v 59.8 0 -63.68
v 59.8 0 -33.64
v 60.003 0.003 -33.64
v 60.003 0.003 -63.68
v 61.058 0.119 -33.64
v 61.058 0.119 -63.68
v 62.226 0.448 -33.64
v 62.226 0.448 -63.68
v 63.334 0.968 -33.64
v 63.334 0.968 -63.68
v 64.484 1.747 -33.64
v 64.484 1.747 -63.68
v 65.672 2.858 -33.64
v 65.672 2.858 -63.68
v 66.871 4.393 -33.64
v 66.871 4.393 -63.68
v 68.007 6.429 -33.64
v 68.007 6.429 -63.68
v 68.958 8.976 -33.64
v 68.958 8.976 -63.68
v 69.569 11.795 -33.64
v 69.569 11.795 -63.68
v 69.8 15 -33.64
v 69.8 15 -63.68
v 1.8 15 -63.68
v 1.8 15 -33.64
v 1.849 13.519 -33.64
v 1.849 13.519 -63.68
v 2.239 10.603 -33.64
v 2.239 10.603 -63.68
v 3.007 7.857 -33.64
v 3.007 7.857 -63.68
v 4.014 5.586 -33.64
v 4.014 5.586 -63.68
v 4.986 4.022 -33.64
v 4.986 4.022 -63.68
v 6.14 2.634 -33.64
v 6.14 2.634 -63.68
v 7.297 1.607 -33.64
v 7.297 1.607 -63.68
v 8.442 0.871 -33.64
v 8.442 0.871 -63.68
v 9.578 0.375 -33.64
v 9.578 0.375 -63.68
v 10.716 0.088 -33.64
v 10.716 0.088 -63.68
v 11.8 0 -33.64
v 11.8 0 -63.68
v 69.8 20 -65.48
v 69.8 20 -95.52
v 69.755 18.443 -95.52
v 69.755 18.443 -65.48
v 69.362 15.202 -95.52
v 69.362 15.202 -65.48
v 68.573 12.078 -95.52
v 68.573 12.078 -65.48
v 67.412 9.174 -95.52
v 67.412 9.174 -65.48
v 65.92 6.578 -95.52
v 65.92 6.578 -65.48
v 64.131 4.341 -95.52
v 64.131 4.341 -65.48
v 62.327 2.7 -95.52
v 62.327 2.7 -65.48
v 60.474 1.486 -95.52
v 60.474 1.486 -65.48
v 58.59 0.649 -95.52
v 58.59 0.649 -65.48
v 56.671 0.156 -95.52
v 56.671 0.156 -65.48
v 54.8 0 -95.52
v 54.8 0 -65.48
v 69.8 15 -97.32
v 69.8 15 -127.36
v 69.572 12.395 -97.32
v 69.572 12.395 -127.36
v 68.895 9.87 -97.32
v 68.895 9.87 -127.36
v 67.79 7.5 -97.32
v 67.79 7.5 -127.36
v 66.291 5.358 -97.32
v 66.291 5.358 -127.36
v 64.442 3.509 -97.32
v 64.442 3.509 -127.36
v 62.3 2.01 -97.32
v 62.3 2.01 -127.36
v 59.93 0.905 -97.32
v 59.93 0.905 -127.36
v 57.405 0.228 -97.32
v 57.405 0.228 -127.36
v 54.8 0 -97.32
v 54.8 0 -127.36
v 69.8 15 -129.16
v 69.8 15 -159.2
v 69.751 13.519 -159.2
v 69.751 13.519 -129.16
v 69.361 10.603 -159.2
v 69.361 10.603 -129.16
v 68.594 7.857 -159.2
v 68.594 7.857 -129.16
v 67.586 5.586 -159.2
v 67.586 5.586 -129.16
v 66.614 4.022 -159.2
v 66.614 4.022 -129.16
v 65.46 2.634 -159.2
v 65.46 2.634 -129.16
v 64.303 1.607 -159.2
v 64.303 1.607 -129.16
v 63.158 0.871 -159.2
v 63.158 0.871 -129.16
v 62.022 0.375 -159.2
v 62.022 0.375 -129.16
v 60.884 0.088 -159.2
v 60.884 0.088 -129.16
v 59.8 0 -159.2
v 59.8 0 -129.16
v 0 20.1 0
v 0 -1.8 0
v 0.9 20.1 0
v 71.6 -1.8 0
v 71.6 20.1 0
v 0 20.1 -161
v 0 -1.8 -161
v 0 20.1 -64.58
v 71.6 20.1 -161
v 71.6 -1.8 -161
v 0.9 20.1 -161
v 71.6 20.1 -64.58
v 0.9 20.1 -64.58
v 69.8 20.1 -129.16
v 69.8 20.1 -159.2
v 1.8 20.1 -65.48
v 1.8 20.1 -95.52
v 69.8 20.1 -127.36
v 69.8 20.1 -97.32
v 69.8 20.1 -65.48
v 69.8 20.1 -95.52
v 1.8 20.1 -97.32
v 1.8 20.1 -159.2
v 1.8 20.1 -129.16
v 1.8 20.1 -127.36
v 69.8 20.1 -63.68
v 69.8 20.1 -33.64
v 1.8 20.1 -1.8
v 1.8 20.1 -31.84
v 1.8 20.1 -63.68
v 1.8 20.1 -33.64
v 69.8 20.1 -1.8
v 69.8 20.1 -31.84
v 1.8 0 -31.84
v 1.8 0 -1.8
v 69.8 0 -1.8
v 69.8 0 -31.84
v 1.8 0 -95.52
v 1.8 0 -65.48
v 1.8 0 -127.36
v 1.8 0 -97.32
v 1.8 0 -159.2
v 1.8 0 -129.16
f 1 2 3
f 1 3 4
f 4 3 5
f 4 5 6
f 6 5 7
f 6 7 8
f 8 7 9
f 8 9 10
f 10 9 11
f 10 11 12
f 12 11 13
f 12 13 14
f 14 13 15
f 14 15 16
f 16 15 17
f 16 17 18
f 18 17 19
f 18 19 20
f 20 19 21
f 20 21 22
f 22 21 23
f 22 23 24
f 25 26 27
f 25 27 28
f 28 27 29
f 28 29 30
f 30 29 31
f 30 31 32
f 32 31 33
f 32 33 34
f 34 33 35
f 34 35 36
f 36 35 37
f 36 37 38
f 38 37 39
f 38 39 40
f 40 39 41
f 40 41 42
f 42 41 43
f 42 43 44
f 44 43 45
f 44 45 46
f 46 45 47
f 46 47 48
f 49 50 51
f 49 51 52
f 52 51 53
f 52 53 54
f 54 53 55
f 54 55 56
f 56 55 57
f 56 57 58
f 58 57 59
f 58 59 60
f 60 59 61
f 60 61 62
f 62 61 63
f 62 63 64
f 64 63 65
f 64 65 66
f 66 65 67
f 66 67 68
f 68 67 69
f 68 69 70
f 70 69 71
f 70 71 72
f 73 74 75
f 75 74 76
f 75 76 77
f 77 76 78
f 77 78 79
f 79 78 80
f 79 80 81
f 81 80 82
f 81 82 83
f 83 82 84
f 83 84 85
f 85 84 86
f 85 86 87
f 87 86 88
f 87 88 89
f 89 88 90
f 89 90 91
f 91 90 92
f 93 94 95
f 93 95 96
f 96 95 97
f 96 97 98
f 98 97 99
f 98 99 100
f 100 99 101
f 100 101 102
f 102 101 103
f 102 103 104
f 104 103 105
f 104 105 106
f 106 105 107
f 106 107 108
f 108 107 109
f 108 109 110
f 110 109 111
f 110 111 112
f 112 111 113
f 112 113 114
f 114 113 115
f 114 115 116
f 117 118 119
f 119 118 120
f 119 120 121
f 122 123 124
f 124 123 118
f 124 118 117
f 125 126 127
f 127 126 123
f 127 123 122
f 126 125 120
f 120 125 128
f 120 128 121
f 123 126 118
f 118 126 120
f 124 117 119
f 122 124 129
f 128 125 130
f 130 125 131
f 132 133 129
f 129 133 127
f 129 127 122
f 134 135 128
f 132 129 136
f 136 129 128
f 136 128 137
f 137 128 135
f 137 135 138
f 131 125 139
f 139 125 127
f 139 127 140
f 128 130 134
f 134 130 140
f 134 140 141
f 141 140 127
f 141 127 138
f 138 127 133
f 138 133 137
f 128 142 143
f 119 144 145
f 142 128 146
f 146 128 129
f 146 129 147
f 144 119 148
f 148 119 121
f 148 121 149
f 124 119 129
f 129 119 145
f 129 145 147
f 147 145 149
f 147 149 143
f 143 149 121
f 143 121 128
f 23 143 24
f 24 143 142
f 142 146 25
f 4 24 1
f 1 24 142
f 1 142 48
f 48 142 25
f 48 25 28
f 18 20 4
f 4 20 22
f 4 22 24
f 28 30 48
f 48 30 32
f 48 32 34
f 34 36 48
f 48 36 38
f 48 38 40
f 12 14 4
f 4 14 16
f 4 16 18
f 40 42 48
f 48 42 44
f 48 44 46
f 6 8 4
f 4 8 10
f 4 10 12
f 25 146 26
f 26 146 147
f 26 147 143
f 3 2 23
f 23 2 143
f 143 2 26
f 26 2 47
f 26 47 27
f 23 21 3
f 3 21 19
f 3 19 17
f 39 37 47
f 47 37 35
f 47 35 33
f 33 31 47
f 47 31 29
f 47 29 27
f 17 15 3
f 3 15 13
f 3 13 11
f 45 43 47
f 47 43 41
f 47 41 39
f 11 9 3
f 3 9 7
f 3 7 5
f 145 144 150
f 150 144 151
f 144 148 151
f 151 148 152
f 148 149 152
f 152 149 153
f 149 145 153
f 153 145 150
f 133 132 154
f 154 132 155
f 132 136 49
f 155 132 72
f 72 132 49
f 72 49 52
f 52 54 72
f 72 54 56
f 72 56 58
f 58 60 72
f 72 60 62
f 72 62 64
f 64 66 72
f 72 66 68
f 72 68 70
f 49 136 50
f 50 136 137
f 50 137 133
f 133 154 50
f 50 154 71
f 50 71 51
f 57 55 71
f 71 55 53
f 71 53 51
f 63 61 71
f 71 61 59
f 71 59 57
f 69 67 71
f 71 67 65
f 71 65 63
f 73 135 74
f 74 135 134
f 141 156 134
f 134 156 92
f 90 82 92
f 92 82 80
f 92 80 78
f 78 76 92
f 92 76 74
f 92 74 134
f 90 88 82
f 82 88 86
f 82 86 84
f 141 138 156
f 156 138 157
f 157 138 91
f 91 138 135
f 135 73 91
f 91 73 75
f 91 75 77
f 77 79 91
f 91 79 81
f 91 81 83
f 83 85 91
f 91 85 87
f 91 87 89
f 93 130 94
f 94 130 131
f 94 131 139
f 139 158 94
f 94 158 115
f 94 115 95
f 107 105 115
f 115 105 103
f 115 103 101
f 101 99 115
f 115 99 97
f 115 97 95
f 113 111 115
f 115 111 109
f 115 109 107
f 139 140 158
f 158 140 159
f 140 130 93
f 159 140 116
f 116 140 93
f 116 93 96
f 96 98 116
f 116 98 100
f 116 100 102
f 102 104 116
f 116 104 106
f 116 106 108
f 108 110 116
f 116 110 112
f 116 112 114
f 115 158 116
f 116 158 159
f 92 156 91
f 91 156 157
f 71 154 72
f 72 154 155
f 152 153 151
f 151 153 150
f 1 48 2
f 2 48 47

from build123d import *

# Parameters (mm, degrees)
SKETCH1_W           = 71.6
SKETCH1_H           = 161
SKETCH1_W_2         = 68
SKETCH1_H_2         = 30.04
BOSS_EXTRUDE1_DEPTH = 1.8
SKETCH1_6_W         = 71.6
SKETCH1_6_H         = 161
SKETCH1_6_W_2       = 68
SKETCH1_6_H_2       = 30.04
BOSS_EXTRUDE2_DEPTH = 20.1
FILLET3_SIZE        = 15
FILLET3_SIZE_2      = 10
FILLET4_R           = 15
FILLET5_SIZE        = 20
FILLET5_SIZE_2      = 15
FILLET6_SIZE        = 10
FILLET6_SIZE_2      = 15
FILLET7_SIZE        = 10
FILLET7_SIZE_2      = 15


with BuildPart() as part:
    # Sketch1 → Boss-Extrude1 (new body)
    # profile 1 of 6: a face of its own
    with BuildSketch(Plane(origin=(0, 0, 0), x_dir=(1, 0, 0), z_dir=(0, 1, 0))):
        with Locations((35.8, 80.5)):
            Rectangle(SKETCH1_W, SKETCH1_H)
        with Locations((35.8, 48.66)):
            Rectangle(SKETCH1_W_2, SKETCH1_H_2, mode=Mode.SUBTRACT)
        with Locations((35.8, 16.82)):
            Rectangle(SKETCH1_W_2, SKETCH1_H_2, mode=Mode.SUBTRACT)
        with Locations((35.8, 80.5)):
            Rectangle(SKETCH1_W_2, SKETCH1_H_2, mode=Mode.SUBTRACT)
        with Locations((35.8, 112.34)):
            Rectangle(SKETCH1_W_2, SKETCH1_H_2, mode=Mode.SUBTRACT)
        with Locations((35.8, 144.18)):
            Rectangle(SKETCH1_W_2, SKETCH1_H_2, mode=Mode.SUBTRACT)
    # profile 2 of 6: a face of its own
    with BuildSketch(Plane(origin=(0, 0, 0), x_dir=(1, 0, 0), z_dir=(0, 1, 0))):
        with Locations((35.8, 144.18)):
            Rectangle(SKETCH1_W_2, SKETCH1_H_2)
    # profile 3 of 6: a face of its own
    with BuildSketch(Plane(origin=(0, 0, 0), x_dir=(1, 0, 0), z_dir=(0, 1, 0))):
        with Locations((35.8, 112.34)):
            Rectangle(SKETCH1_W_2, SKETCH1_H_2)
    # profile 4 of 6: a face of its own
    with BuildSketch(Plane(origin=(0, 0, 0), x_dir=(1, 0, 0), z_dir=(0, 1, 0))):
        with Locations((35.8, 80.5)):
            Rectangle(SKETCH1_W_2, SKETCH1_H_2)
    # profile 5 of 6: a face of its own
    with BuildSketch(Plane(origin=(0, 0, 0), x_dir=(1, 0, 0), z_dir=(0, 1, 0))):
        with Locations((35.8, 48.66)):
            Rectangle(SKETCH1_W_2, SKETCH1_H_2)
    # profile 6 of 6: a face of its own
    with BuildSketch(Plane(origin=(0, 0, 0), x_dir=(1, 0, 0), z_dir=(0, 1, 0))):
        with Locations((35.8, 16.82)):
            Rectangle(SKETCH1_W_2, SKETCH1_H_2)
    extrude(amount=-BOSS_EXTRUDE1_DEPTH)

    # Sketch1<6> → Boss-Extrude2 (add)
    with BuildSketch(Plane(origin=(0, 0, 0), x_dir=(1, 0, 0), z_dir=(0, 1, 0))):
        with Locations((35.8, 80.5)):
            Rectangle(SKETCH1_6_W, SKETCH1_6_H)
        with Locations((35.8, 16.82)):
            Rectangle(SKETCH1_6_W_2, SKETCH1_6_H_2, mode=Mode.SUBTRACT)
        with Locations((35.8, 80.5)):
            Rectangle(SKETCH1_6_W_2, SKETCH1_6_H_2, mode=Mode.SUBTRACT)
        with Locations((35.8, 48.66)):
            Rectangle(SKETCH1_6_W_2, SKETCH1_6_H_2, mode=Mode.SUBTRACT)
        with Locations((35.8, 112.34)):
            Rectangle(SKETCH1_6_W_2, SKETCH1_6_H_2, mode=Mode.SUBTRACT)
        with Locations((35.8, 144.18)):
            Rectangle(SKETCH1_6_W_2, SKETCH1_6_H_2, mode=Mode.SUBTRACT)
    extrude(amount=BOSS_EXTRUDE2_DEPTH)

    # Fillet3
    # an asymmetric fillet: 15, 10 mm, written as the material it adds along each edge
    with BuildSketch(Plane(origin=(69.8, 0, -159.2), x_dir=(0, 1, 0), z_dir=(0, 0, 1))) as fillet3_piece_1_section:
        with BuildLine():
            Bezier((FILLET3_SIZE, 0), (0, 0), (0, FILLET3_SIZE_2), weights=[1, 0.707106781, 1])
            Line((0, FILLET3_SIZE_2), (0, 0))
            Line((0, 0), (FILLET3_SIZE, 0))
        make_face()
    fillet3_piece_1 = extrude(amount=67.54, mode=Mode.PRIVATE)
    fillet3_piece_1 = split(fillet3_piece_1, bisect_by=Plane(origin=(67.566321176, 3.350519055, -127.36), z_dir=(0, 0, -1)), keep=Keep.TOP, mode=Mode.PRIVATE)
    add(fillet3_piece_1)

    # Fillet4
    fillet4_edges = [part.edges().sort_by_distance(p)[0] for p in [
        (69.8, 0, -112.34),
    ]]
    fillet(fillet4_edges, radius=FILLET4_R)

    # Fillet5
    # an asymmetric fillet: 20, 15 mm, written as the material it adds along each edge
    with BuildSketch(Plane(origin=(69.8, 0, -95.52), x_dir=(0, 1, 0), z_dir=(0, 0, 1))) as fillet5_piece_1_section:
        with BuildLine():
            Bezier((FILLET5_SIZE, 0), (0, 0), (0, FILLET5_SIZE_2), weights=[1, 0.707106781, 1])
            Line((0, FILLET5_SIZE_2), (0, 0))
            Line((0, 0), (FILLET5_SIZE, 0))
        make_face()
    fillet5_piece_1 = extrude(amount=80.04, mode=Mode.PRIVATE)
    fillet5_piece_1 = split(fillet5_piece_1, bisect_by=Plane(origin=(69.753885797, 17.321244921, -63.68), z_dir=(0, 0, -1)), keep=Keep.TOP, mode=Mode.PRIVATE)
    add(fillet5_piece_1)

    # Fillet6
    # an asymmetric fillet: 15, 10 mm, written as the material it adds along each edge
    with BuildSketch(Plane(origin=(1.8, 0, -101.18), x_dir=(1, 0, 0), z_dir=(0, 0, 1))) as fillet6_piece_1_section:
        with BuildLine():
            Bezier((FILLET6_SIZE, 0), (0, 0), (0, FILLET6_SIZE_2), weights=[1, 0.707106781, 1])
            Line((0, FILLET6_SIZE_2), (0, 0))
            Line((0, 0), (FILLET6_SIZE, 0))
        make_face()
    fillet6_piece_1 = extrude(amount=105.04, mode=Mode.PRIVATE)
    fillet6_piece_1 = split(fillet6_piece_1, bisect_by=Plane(origin=(4.033678617, 3.350518679, -31.84), z_dir=(0, 0, -1)), keep=Keep.TOP, mode=Mode.PRIVATE)
    fillet6_piece_1 = split(fillet6_piece_1, bisect_by=Plane(origin=(4.033678617, 3.350518679, -65.48), z_dir=(0, 0, 1)), keep=Keep.TOP, mode=Mode.PRIVATE)
    add(fillet6_piece_1)

    # Fillet7
    # an asymmetric fillet: 15, 10 mm, written as the material it adds along each edge
    with BuildSketch(Plane(origin=(69.8, 0, 3.86), x_dir=(-1, 0, 0), z_dir=(0, 0, -1))) as fillet7_piece_1_section:
        with BuildLine():
            Bezier((FILLET7_SIZE, 0), (0, 0), (0, FILLET7_SIZE_2), weights=[1, 0.707106781, 1])
            Line((0, FILLET7_SIZE_2), (0, 0))
            Line((0, 0), (FILLET7_SIZE, 0))
        make_face()
    fillet7_piece_1 = extrude(amount=105.04, mode=Mode.PRIVATE)
    fillet7_piece_1 = split(fillet7_piece_1, bisect_by=Plane(origin=(67.566321383, 3.350518679, -31.84), z_dir=(0, 0, -1)), keep=Keep.TOP, mode=Mode.PRIVATE)
    add(fillet7_piece_1)


solid = part.part
